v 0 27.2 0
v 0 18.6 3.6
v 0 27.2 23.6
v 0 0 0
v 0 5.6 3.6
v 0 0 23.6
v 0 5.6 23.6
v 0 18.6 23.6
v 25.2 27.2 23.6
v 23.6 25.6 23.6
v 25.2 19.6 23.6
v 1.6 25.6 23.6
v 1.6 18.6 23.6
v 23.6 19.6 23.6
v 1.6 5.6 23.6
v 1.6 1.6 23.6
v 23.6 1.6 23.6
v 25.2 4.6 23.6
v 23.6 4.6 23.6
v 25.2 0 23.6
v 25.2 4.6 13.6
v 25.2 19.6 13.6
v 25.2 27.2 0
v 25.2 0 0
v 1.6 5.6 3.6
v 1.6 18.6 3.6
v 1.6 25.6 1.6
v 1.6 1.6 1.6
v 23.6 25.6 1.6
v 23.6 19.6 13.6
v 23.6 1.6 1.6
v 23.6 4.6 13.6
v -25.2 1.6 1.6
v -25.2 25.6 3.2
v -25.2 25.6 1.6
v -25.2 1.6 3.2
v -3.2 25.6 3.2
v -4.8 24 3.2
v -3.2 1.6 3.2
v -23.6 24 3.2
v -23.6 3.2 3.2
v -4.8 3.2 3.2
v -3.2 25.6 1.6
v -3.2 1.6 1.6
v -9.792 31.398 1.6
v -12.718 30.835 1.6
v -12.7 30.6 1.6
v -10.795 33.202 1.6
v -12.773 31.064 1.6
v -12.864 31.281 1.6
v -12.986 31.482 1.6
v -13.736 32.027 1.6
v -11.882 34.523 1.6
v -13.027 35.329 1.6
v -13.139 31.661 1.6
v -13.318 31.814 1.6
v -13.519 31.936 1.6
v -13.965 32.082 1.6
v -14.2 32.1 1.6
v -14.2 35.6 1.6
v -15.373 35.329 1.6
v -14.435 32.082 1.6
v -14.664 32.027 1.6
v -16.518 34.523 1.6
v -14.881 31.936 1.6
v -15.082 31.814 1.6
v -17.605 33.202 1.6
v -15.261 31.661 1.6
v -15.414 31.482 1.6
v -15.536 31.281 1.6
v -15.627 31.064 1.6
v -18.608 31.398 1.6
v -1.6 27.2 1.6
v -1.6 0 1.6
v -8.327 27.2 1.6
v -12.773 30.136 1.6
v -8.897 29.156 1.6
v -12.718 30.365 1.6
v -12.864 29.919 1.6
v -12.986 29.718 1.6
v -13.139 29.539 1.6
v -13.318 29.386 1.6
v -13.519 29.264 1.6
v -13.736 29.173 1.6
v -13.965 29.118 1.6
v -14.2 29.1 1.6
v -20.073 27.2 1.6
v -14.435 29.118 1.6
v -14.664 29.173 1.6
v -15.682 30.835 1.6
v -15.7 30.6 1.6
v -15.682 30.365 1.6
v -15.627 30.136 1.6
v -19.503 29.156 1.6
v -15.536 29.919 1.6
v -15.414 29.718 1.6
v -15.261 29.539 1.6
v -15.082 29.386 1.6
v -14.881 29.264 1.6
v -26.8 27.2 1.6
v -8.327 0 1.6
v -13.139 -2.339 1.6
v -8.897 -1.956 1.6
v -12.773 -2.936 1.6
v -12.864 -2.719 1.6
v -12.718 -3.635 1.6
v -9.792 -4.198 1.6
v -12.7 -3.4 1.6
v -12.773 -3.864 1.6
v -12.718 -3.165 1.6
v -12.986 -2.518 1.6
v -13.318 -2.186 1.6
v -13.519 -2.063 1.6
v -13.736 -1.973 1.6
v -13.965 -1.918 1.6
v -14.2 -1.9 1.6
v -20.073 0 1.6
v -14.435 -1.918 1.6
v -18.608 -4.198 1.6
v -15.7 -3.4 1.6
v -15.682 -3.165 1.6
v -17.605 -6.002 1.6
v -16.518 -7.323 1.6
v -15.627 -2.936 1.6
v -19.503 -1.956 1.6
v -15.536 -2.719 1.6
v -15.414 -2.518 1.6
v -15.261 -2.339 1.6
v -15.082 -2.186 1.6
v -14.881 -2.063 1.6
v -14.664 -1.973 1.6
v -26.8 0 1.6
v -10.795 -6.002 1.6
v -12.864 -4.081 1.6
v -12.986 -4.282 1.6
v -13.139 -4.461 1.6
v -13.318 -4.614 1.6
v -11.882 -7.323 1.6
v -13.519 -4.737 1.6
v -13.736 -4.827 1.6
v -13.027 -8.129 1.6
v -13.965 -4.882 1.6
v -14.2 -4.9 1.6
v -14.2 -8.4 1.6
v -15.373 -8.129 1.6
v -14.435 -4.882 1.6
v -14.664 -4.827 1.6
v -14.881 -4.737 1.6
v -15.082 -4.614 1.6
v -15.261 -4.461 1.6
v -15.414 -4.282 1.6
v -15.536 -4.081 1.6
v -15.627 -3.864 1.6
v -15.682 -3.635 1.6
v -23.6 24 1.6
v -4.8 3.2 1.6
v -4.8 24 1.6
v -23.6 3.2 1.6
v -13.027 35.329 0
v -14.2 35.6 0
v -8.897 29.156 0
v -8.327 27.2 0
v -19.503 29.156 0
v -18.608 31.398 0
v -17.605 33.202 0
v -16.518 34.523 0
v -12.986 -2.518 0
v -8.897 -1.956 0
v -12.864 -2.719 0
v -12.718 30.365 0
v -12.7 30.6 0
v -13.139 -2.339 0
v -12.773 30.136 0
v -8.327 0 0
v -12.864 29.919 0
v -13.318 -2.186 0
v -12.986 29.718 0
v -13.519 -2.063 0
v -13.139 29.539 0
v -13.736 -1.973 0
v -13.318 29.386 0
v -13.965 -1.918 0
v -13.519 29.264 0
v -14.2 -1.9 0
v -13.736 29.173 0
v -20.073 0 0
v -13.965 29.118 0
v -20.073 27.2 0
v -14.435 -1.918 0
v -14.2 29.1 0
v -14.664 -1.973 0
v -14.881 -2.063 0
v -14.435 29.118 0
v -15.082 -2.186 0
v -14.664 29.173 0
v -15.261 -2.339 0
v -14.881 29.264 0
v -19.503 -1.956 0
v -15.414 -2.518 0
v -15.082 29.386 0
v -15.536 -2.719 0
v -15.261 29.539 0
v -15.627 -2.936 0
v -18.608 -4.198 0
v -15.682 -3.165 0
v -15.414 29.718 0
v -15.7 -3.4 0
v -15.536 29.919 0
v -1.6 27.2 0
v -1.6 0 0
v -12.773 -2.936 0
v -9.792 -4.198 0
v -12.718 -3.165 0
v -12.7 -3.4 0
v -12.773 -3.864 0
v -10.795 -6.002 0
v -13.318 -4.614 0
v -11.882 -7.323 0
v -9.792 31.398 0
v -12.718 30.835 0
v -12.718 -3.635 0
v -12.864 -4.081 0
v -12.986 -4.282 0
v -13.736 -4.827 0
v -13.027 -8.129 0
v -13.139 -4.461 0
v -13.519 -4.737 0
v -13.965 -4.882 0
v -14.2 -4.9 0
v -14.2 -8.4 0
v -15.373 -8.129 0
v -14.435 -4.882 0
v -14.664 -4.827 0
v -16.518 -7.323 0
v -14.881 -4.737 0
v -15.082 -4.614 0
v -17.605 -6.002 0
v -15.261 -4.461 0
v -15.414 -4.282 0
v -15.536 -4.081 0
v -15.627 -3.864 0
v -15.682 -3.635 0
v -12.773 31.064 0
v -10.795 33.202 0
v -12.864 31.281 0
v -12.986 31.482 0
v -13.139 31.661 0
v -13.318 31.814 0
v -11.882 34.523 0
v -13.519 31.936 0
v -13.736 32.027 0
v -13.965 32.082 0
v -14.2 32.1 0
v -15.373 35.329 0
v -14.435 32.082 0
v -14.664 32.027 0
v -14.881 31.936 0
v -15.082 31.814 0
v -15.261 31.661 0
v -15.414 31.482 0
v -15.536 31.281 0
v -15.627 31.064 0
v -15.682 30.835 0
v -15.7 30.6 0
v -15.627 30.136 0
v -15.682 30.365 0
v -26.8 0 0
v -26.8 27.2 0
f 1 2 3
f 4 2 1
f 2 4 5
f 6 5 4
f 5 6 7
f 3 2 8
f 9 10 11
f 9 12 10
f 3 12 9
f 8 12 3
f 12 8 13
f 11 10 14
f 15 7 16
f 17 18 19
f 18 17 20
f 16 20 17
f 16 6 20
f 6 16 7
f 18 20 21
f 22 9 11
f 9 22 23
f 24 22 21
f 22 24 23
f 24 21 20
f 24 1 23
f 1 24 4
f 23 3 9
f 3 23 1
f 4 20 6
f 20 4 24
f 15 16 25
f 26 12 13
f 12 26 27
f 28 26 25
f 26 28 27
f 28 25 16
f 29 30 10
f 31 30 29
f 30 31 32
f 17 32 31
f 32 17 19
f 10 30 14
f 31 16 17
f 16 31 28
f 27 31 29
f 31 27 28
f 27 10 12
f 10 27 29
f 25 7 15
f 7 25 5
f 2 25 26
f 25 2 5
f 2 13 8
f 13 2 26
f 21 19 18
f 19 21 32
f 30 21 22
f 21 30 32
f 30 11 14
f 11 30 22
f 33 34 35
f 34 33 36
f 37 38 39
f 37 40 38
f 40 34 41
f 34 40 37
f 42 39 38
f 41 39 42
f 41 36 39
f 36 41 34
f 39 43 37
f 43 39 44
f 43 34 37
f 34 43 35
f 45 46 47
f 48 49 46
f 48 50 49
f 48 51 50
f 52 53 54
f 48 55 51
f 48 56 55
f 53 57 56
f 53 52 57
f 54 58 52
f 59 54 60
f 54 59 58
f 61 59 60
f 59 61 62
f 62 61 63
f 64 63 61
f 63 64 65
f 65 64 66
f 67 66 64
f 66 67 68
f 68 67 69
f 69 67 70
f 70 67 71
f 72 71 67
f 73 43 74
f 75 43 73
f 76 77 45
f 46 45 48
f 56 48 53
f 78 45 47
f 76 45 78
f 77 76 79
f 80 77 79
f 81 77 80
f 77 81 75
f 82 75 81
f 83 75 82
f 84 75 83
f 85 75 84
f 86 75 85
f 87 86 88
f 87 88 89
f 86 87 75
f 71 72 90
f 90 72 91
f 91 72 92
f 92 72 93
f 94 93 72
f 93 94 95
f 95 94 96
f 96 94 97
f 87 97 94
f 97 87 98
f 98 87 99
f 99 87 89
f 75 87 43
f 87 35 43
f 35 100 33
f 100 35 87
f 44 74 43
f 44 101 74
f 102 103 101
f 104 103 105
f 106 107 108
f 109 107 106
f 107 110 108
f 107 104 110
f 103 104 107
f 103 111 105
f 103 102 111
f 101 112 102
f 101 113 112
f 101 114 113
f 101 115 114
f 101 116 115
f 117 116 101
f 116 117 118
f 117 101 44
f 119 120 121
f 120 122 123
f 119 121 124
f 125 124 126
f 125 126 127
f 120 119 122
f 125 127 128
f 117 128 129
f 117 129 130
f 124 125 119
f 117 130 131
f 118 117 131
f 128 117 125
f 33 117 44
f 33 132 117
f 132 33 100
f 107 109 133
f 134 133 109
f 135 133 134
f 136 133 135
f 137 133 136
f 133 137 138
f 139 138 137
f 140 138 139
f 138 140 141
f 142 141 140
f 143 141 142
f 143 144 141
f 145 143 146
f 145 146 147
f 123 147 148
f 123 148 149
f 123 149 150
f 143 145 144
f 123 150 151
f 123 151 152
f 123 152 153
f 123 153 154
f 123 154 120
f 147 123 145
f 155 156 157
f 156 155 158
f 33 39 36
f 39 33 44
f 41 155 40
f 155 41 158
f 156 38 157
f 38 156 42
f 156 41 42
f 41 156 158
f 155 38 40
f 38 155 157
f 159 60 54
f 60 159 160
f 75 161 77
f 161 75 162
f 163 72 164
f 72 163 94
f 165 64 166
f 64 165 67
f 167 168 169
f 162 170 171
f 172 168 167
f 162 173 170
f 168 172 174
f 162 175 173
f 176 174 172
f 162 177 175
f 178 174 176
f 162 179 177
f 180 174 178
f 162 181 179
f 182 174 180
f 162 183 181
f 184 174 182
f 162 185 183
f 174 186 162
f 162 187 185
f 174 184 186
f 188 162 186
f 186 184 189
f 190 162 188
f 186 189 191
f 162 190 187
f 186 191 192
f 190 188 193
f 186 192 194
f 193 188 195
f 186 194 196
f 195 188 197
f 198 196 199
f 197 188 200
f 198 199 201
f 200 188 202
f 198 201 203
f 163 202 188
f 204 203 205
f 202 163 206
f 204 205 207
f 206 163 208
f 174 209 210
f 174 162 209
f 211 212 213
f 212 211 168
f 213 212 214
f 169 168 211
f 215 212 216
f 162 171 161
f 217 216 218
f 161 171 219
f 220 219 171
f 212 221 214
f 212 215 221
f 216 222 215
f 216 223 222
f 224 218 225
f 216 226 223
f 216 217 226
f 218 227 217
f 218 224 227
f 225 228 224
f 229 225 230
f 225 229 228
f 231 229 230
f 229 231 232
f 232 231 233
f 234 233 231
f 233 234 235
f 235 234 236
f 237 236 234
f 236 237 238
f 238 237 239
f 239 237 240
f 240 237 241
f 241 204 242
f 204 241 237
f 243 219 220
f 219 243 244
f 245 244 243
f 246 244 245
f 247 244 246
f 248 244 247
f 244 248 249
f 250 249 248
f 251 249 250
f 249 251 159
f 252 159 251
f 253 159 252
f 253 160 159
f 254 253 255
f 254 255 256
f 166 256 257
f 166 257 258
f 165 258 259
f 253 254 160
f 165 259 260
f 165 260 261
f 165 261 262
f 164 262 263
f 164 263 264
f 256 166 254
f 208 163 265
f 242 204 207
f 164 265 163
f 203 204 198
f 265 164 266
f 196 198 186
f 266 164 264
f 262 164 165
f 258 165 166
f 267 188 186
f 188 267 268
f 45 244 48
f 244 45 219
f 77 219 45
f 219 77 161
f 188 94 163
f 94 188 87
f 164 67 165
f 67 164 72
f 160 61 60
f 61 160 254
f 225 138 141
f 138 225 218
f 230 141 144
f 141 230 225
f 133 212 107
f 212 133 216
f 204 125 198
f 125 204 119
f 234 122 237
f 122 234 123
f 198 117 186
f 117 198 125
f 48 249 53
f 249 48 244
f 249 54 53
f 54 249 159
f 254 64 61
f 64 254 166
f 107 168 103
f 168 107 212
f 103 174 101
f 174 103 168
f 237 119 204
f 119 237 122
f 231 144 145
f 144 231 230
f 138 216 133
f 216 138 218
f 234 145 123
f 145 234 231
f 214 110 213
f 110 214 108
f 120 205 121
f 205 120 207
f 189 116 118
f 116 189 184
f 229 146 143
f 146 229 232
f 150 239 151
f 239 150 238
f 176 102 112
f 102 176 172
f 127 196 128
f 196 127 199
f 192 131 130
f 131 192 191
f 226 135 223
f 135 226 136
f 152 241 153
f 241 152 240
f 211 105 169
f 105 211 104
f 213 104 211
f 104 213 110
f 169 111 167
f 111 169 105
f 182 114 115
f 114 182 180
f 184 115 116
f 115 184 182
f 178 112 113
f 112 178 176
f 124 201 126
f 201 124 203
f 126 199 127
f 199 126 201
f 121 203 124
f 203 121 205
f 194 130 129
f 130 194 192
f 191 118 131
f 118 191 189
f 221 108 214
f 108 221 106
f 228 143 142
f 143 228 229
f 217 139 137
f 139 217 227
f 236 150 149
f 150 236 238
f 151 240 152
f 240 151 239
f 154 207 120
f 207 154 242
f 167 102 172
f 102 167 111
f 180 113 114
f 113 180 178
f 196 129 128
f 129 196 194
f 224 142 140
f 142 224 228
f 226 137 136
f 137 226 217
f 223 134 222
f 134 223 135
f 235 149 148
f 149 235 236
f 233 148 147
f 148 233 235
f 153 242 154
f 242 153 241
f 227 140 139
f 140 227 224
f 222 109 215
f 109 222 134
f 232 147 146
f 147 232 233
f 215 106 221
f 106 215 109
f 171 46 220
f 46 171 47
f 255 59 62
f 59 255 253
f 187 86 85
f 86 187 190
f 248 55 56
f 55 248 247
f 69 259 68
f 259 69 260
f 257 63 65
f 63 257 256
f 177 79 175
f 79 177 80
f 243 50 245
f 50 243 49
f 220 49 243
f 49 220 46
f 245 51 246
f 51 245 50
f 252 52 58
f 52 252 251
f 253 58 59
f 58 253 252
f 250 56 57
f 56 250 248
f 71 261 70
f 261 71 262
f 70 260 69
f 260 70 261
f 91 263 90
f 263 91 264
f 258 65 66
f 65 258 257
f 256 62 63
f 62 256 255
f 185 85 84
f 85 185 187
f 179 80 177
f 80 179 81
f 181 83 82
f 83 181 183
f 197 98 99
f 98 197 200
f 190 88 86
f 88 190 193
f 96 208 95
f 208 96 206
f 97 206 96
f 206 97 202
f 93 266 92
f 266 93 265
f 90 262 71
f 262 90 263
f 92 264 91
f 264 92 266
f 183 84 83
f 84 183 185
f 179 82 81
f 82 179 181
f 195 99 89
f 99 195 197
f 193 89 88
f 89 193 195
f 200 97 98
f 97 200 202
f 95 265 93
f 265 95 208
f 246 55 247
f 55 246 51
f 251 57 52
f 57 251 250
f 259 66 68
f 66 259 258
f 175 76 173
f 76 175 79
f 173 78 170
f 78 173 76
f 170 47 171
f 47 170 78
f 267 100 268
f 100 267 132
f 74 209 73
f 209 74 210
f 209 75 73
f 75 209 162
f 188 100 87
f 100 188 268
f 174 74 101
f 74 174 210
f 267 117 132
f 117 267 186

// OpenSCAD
//Procedural Project Box Screws

//40mm x 60 board size

inside_width = 22;
inside_length = 24;
inside_height = 22;


wall_thickness=1.6;

$fn=40;

translate([0,inside_length+2*wall_thickness,0])rotate([0,0,90])mirror([1,1,0])difference() {
    cube([inside_width+2*wall_thickness, 
        inside_length+2*wall_thickness,
        inside_height+wall_thickness]);

    translate([wall_thickness,wall_thickness,wall_thickness])cube([inside_width, 
        inside_length,
        inside_height]);
    

 translate([-5,7+wall_thickness,wall_thickness+2])cube([10,13,20]);
 
 translate([inside_width+2*wall_thickness-4,6+wall_thickness,wall_thickness+inside_height-10])cube([10,15,10]);
 
    
    }



 


translate([-inside_width-3*wall_thickness,0,0]) {

  union() {
    cube([inside_width+2*wall_thickness, 
        inside_length+2*wall_thickness,
        wall_thickness]);

    difference(){translate([wall_thickness,wall_thickness,wall_thickness])cube([inside_width, 
        inside_length,
        wall_thickness]);
     
       translate([2*wall_thickness,2*wall_thickness,wall_thickness]) cube([inside_width-2*wall_thickness, 
        inside_length-2*wall_thickness,
        wall_thickness]);
    }
    
    translate([inside_width/2+wall_thickness,inside_length/2+wall_thickness])difference(){
        resize([15,inside_length+20])cylinder(d=10,h=wall_thickness);
        translate([0,-inside_length/2-5])cylinder(d=3,h=10*wall_thickness);
        translate([0,inside_length/2+5])cylinder(d=3,h=10*wall_thickness);
    }

  }
}
    

        
